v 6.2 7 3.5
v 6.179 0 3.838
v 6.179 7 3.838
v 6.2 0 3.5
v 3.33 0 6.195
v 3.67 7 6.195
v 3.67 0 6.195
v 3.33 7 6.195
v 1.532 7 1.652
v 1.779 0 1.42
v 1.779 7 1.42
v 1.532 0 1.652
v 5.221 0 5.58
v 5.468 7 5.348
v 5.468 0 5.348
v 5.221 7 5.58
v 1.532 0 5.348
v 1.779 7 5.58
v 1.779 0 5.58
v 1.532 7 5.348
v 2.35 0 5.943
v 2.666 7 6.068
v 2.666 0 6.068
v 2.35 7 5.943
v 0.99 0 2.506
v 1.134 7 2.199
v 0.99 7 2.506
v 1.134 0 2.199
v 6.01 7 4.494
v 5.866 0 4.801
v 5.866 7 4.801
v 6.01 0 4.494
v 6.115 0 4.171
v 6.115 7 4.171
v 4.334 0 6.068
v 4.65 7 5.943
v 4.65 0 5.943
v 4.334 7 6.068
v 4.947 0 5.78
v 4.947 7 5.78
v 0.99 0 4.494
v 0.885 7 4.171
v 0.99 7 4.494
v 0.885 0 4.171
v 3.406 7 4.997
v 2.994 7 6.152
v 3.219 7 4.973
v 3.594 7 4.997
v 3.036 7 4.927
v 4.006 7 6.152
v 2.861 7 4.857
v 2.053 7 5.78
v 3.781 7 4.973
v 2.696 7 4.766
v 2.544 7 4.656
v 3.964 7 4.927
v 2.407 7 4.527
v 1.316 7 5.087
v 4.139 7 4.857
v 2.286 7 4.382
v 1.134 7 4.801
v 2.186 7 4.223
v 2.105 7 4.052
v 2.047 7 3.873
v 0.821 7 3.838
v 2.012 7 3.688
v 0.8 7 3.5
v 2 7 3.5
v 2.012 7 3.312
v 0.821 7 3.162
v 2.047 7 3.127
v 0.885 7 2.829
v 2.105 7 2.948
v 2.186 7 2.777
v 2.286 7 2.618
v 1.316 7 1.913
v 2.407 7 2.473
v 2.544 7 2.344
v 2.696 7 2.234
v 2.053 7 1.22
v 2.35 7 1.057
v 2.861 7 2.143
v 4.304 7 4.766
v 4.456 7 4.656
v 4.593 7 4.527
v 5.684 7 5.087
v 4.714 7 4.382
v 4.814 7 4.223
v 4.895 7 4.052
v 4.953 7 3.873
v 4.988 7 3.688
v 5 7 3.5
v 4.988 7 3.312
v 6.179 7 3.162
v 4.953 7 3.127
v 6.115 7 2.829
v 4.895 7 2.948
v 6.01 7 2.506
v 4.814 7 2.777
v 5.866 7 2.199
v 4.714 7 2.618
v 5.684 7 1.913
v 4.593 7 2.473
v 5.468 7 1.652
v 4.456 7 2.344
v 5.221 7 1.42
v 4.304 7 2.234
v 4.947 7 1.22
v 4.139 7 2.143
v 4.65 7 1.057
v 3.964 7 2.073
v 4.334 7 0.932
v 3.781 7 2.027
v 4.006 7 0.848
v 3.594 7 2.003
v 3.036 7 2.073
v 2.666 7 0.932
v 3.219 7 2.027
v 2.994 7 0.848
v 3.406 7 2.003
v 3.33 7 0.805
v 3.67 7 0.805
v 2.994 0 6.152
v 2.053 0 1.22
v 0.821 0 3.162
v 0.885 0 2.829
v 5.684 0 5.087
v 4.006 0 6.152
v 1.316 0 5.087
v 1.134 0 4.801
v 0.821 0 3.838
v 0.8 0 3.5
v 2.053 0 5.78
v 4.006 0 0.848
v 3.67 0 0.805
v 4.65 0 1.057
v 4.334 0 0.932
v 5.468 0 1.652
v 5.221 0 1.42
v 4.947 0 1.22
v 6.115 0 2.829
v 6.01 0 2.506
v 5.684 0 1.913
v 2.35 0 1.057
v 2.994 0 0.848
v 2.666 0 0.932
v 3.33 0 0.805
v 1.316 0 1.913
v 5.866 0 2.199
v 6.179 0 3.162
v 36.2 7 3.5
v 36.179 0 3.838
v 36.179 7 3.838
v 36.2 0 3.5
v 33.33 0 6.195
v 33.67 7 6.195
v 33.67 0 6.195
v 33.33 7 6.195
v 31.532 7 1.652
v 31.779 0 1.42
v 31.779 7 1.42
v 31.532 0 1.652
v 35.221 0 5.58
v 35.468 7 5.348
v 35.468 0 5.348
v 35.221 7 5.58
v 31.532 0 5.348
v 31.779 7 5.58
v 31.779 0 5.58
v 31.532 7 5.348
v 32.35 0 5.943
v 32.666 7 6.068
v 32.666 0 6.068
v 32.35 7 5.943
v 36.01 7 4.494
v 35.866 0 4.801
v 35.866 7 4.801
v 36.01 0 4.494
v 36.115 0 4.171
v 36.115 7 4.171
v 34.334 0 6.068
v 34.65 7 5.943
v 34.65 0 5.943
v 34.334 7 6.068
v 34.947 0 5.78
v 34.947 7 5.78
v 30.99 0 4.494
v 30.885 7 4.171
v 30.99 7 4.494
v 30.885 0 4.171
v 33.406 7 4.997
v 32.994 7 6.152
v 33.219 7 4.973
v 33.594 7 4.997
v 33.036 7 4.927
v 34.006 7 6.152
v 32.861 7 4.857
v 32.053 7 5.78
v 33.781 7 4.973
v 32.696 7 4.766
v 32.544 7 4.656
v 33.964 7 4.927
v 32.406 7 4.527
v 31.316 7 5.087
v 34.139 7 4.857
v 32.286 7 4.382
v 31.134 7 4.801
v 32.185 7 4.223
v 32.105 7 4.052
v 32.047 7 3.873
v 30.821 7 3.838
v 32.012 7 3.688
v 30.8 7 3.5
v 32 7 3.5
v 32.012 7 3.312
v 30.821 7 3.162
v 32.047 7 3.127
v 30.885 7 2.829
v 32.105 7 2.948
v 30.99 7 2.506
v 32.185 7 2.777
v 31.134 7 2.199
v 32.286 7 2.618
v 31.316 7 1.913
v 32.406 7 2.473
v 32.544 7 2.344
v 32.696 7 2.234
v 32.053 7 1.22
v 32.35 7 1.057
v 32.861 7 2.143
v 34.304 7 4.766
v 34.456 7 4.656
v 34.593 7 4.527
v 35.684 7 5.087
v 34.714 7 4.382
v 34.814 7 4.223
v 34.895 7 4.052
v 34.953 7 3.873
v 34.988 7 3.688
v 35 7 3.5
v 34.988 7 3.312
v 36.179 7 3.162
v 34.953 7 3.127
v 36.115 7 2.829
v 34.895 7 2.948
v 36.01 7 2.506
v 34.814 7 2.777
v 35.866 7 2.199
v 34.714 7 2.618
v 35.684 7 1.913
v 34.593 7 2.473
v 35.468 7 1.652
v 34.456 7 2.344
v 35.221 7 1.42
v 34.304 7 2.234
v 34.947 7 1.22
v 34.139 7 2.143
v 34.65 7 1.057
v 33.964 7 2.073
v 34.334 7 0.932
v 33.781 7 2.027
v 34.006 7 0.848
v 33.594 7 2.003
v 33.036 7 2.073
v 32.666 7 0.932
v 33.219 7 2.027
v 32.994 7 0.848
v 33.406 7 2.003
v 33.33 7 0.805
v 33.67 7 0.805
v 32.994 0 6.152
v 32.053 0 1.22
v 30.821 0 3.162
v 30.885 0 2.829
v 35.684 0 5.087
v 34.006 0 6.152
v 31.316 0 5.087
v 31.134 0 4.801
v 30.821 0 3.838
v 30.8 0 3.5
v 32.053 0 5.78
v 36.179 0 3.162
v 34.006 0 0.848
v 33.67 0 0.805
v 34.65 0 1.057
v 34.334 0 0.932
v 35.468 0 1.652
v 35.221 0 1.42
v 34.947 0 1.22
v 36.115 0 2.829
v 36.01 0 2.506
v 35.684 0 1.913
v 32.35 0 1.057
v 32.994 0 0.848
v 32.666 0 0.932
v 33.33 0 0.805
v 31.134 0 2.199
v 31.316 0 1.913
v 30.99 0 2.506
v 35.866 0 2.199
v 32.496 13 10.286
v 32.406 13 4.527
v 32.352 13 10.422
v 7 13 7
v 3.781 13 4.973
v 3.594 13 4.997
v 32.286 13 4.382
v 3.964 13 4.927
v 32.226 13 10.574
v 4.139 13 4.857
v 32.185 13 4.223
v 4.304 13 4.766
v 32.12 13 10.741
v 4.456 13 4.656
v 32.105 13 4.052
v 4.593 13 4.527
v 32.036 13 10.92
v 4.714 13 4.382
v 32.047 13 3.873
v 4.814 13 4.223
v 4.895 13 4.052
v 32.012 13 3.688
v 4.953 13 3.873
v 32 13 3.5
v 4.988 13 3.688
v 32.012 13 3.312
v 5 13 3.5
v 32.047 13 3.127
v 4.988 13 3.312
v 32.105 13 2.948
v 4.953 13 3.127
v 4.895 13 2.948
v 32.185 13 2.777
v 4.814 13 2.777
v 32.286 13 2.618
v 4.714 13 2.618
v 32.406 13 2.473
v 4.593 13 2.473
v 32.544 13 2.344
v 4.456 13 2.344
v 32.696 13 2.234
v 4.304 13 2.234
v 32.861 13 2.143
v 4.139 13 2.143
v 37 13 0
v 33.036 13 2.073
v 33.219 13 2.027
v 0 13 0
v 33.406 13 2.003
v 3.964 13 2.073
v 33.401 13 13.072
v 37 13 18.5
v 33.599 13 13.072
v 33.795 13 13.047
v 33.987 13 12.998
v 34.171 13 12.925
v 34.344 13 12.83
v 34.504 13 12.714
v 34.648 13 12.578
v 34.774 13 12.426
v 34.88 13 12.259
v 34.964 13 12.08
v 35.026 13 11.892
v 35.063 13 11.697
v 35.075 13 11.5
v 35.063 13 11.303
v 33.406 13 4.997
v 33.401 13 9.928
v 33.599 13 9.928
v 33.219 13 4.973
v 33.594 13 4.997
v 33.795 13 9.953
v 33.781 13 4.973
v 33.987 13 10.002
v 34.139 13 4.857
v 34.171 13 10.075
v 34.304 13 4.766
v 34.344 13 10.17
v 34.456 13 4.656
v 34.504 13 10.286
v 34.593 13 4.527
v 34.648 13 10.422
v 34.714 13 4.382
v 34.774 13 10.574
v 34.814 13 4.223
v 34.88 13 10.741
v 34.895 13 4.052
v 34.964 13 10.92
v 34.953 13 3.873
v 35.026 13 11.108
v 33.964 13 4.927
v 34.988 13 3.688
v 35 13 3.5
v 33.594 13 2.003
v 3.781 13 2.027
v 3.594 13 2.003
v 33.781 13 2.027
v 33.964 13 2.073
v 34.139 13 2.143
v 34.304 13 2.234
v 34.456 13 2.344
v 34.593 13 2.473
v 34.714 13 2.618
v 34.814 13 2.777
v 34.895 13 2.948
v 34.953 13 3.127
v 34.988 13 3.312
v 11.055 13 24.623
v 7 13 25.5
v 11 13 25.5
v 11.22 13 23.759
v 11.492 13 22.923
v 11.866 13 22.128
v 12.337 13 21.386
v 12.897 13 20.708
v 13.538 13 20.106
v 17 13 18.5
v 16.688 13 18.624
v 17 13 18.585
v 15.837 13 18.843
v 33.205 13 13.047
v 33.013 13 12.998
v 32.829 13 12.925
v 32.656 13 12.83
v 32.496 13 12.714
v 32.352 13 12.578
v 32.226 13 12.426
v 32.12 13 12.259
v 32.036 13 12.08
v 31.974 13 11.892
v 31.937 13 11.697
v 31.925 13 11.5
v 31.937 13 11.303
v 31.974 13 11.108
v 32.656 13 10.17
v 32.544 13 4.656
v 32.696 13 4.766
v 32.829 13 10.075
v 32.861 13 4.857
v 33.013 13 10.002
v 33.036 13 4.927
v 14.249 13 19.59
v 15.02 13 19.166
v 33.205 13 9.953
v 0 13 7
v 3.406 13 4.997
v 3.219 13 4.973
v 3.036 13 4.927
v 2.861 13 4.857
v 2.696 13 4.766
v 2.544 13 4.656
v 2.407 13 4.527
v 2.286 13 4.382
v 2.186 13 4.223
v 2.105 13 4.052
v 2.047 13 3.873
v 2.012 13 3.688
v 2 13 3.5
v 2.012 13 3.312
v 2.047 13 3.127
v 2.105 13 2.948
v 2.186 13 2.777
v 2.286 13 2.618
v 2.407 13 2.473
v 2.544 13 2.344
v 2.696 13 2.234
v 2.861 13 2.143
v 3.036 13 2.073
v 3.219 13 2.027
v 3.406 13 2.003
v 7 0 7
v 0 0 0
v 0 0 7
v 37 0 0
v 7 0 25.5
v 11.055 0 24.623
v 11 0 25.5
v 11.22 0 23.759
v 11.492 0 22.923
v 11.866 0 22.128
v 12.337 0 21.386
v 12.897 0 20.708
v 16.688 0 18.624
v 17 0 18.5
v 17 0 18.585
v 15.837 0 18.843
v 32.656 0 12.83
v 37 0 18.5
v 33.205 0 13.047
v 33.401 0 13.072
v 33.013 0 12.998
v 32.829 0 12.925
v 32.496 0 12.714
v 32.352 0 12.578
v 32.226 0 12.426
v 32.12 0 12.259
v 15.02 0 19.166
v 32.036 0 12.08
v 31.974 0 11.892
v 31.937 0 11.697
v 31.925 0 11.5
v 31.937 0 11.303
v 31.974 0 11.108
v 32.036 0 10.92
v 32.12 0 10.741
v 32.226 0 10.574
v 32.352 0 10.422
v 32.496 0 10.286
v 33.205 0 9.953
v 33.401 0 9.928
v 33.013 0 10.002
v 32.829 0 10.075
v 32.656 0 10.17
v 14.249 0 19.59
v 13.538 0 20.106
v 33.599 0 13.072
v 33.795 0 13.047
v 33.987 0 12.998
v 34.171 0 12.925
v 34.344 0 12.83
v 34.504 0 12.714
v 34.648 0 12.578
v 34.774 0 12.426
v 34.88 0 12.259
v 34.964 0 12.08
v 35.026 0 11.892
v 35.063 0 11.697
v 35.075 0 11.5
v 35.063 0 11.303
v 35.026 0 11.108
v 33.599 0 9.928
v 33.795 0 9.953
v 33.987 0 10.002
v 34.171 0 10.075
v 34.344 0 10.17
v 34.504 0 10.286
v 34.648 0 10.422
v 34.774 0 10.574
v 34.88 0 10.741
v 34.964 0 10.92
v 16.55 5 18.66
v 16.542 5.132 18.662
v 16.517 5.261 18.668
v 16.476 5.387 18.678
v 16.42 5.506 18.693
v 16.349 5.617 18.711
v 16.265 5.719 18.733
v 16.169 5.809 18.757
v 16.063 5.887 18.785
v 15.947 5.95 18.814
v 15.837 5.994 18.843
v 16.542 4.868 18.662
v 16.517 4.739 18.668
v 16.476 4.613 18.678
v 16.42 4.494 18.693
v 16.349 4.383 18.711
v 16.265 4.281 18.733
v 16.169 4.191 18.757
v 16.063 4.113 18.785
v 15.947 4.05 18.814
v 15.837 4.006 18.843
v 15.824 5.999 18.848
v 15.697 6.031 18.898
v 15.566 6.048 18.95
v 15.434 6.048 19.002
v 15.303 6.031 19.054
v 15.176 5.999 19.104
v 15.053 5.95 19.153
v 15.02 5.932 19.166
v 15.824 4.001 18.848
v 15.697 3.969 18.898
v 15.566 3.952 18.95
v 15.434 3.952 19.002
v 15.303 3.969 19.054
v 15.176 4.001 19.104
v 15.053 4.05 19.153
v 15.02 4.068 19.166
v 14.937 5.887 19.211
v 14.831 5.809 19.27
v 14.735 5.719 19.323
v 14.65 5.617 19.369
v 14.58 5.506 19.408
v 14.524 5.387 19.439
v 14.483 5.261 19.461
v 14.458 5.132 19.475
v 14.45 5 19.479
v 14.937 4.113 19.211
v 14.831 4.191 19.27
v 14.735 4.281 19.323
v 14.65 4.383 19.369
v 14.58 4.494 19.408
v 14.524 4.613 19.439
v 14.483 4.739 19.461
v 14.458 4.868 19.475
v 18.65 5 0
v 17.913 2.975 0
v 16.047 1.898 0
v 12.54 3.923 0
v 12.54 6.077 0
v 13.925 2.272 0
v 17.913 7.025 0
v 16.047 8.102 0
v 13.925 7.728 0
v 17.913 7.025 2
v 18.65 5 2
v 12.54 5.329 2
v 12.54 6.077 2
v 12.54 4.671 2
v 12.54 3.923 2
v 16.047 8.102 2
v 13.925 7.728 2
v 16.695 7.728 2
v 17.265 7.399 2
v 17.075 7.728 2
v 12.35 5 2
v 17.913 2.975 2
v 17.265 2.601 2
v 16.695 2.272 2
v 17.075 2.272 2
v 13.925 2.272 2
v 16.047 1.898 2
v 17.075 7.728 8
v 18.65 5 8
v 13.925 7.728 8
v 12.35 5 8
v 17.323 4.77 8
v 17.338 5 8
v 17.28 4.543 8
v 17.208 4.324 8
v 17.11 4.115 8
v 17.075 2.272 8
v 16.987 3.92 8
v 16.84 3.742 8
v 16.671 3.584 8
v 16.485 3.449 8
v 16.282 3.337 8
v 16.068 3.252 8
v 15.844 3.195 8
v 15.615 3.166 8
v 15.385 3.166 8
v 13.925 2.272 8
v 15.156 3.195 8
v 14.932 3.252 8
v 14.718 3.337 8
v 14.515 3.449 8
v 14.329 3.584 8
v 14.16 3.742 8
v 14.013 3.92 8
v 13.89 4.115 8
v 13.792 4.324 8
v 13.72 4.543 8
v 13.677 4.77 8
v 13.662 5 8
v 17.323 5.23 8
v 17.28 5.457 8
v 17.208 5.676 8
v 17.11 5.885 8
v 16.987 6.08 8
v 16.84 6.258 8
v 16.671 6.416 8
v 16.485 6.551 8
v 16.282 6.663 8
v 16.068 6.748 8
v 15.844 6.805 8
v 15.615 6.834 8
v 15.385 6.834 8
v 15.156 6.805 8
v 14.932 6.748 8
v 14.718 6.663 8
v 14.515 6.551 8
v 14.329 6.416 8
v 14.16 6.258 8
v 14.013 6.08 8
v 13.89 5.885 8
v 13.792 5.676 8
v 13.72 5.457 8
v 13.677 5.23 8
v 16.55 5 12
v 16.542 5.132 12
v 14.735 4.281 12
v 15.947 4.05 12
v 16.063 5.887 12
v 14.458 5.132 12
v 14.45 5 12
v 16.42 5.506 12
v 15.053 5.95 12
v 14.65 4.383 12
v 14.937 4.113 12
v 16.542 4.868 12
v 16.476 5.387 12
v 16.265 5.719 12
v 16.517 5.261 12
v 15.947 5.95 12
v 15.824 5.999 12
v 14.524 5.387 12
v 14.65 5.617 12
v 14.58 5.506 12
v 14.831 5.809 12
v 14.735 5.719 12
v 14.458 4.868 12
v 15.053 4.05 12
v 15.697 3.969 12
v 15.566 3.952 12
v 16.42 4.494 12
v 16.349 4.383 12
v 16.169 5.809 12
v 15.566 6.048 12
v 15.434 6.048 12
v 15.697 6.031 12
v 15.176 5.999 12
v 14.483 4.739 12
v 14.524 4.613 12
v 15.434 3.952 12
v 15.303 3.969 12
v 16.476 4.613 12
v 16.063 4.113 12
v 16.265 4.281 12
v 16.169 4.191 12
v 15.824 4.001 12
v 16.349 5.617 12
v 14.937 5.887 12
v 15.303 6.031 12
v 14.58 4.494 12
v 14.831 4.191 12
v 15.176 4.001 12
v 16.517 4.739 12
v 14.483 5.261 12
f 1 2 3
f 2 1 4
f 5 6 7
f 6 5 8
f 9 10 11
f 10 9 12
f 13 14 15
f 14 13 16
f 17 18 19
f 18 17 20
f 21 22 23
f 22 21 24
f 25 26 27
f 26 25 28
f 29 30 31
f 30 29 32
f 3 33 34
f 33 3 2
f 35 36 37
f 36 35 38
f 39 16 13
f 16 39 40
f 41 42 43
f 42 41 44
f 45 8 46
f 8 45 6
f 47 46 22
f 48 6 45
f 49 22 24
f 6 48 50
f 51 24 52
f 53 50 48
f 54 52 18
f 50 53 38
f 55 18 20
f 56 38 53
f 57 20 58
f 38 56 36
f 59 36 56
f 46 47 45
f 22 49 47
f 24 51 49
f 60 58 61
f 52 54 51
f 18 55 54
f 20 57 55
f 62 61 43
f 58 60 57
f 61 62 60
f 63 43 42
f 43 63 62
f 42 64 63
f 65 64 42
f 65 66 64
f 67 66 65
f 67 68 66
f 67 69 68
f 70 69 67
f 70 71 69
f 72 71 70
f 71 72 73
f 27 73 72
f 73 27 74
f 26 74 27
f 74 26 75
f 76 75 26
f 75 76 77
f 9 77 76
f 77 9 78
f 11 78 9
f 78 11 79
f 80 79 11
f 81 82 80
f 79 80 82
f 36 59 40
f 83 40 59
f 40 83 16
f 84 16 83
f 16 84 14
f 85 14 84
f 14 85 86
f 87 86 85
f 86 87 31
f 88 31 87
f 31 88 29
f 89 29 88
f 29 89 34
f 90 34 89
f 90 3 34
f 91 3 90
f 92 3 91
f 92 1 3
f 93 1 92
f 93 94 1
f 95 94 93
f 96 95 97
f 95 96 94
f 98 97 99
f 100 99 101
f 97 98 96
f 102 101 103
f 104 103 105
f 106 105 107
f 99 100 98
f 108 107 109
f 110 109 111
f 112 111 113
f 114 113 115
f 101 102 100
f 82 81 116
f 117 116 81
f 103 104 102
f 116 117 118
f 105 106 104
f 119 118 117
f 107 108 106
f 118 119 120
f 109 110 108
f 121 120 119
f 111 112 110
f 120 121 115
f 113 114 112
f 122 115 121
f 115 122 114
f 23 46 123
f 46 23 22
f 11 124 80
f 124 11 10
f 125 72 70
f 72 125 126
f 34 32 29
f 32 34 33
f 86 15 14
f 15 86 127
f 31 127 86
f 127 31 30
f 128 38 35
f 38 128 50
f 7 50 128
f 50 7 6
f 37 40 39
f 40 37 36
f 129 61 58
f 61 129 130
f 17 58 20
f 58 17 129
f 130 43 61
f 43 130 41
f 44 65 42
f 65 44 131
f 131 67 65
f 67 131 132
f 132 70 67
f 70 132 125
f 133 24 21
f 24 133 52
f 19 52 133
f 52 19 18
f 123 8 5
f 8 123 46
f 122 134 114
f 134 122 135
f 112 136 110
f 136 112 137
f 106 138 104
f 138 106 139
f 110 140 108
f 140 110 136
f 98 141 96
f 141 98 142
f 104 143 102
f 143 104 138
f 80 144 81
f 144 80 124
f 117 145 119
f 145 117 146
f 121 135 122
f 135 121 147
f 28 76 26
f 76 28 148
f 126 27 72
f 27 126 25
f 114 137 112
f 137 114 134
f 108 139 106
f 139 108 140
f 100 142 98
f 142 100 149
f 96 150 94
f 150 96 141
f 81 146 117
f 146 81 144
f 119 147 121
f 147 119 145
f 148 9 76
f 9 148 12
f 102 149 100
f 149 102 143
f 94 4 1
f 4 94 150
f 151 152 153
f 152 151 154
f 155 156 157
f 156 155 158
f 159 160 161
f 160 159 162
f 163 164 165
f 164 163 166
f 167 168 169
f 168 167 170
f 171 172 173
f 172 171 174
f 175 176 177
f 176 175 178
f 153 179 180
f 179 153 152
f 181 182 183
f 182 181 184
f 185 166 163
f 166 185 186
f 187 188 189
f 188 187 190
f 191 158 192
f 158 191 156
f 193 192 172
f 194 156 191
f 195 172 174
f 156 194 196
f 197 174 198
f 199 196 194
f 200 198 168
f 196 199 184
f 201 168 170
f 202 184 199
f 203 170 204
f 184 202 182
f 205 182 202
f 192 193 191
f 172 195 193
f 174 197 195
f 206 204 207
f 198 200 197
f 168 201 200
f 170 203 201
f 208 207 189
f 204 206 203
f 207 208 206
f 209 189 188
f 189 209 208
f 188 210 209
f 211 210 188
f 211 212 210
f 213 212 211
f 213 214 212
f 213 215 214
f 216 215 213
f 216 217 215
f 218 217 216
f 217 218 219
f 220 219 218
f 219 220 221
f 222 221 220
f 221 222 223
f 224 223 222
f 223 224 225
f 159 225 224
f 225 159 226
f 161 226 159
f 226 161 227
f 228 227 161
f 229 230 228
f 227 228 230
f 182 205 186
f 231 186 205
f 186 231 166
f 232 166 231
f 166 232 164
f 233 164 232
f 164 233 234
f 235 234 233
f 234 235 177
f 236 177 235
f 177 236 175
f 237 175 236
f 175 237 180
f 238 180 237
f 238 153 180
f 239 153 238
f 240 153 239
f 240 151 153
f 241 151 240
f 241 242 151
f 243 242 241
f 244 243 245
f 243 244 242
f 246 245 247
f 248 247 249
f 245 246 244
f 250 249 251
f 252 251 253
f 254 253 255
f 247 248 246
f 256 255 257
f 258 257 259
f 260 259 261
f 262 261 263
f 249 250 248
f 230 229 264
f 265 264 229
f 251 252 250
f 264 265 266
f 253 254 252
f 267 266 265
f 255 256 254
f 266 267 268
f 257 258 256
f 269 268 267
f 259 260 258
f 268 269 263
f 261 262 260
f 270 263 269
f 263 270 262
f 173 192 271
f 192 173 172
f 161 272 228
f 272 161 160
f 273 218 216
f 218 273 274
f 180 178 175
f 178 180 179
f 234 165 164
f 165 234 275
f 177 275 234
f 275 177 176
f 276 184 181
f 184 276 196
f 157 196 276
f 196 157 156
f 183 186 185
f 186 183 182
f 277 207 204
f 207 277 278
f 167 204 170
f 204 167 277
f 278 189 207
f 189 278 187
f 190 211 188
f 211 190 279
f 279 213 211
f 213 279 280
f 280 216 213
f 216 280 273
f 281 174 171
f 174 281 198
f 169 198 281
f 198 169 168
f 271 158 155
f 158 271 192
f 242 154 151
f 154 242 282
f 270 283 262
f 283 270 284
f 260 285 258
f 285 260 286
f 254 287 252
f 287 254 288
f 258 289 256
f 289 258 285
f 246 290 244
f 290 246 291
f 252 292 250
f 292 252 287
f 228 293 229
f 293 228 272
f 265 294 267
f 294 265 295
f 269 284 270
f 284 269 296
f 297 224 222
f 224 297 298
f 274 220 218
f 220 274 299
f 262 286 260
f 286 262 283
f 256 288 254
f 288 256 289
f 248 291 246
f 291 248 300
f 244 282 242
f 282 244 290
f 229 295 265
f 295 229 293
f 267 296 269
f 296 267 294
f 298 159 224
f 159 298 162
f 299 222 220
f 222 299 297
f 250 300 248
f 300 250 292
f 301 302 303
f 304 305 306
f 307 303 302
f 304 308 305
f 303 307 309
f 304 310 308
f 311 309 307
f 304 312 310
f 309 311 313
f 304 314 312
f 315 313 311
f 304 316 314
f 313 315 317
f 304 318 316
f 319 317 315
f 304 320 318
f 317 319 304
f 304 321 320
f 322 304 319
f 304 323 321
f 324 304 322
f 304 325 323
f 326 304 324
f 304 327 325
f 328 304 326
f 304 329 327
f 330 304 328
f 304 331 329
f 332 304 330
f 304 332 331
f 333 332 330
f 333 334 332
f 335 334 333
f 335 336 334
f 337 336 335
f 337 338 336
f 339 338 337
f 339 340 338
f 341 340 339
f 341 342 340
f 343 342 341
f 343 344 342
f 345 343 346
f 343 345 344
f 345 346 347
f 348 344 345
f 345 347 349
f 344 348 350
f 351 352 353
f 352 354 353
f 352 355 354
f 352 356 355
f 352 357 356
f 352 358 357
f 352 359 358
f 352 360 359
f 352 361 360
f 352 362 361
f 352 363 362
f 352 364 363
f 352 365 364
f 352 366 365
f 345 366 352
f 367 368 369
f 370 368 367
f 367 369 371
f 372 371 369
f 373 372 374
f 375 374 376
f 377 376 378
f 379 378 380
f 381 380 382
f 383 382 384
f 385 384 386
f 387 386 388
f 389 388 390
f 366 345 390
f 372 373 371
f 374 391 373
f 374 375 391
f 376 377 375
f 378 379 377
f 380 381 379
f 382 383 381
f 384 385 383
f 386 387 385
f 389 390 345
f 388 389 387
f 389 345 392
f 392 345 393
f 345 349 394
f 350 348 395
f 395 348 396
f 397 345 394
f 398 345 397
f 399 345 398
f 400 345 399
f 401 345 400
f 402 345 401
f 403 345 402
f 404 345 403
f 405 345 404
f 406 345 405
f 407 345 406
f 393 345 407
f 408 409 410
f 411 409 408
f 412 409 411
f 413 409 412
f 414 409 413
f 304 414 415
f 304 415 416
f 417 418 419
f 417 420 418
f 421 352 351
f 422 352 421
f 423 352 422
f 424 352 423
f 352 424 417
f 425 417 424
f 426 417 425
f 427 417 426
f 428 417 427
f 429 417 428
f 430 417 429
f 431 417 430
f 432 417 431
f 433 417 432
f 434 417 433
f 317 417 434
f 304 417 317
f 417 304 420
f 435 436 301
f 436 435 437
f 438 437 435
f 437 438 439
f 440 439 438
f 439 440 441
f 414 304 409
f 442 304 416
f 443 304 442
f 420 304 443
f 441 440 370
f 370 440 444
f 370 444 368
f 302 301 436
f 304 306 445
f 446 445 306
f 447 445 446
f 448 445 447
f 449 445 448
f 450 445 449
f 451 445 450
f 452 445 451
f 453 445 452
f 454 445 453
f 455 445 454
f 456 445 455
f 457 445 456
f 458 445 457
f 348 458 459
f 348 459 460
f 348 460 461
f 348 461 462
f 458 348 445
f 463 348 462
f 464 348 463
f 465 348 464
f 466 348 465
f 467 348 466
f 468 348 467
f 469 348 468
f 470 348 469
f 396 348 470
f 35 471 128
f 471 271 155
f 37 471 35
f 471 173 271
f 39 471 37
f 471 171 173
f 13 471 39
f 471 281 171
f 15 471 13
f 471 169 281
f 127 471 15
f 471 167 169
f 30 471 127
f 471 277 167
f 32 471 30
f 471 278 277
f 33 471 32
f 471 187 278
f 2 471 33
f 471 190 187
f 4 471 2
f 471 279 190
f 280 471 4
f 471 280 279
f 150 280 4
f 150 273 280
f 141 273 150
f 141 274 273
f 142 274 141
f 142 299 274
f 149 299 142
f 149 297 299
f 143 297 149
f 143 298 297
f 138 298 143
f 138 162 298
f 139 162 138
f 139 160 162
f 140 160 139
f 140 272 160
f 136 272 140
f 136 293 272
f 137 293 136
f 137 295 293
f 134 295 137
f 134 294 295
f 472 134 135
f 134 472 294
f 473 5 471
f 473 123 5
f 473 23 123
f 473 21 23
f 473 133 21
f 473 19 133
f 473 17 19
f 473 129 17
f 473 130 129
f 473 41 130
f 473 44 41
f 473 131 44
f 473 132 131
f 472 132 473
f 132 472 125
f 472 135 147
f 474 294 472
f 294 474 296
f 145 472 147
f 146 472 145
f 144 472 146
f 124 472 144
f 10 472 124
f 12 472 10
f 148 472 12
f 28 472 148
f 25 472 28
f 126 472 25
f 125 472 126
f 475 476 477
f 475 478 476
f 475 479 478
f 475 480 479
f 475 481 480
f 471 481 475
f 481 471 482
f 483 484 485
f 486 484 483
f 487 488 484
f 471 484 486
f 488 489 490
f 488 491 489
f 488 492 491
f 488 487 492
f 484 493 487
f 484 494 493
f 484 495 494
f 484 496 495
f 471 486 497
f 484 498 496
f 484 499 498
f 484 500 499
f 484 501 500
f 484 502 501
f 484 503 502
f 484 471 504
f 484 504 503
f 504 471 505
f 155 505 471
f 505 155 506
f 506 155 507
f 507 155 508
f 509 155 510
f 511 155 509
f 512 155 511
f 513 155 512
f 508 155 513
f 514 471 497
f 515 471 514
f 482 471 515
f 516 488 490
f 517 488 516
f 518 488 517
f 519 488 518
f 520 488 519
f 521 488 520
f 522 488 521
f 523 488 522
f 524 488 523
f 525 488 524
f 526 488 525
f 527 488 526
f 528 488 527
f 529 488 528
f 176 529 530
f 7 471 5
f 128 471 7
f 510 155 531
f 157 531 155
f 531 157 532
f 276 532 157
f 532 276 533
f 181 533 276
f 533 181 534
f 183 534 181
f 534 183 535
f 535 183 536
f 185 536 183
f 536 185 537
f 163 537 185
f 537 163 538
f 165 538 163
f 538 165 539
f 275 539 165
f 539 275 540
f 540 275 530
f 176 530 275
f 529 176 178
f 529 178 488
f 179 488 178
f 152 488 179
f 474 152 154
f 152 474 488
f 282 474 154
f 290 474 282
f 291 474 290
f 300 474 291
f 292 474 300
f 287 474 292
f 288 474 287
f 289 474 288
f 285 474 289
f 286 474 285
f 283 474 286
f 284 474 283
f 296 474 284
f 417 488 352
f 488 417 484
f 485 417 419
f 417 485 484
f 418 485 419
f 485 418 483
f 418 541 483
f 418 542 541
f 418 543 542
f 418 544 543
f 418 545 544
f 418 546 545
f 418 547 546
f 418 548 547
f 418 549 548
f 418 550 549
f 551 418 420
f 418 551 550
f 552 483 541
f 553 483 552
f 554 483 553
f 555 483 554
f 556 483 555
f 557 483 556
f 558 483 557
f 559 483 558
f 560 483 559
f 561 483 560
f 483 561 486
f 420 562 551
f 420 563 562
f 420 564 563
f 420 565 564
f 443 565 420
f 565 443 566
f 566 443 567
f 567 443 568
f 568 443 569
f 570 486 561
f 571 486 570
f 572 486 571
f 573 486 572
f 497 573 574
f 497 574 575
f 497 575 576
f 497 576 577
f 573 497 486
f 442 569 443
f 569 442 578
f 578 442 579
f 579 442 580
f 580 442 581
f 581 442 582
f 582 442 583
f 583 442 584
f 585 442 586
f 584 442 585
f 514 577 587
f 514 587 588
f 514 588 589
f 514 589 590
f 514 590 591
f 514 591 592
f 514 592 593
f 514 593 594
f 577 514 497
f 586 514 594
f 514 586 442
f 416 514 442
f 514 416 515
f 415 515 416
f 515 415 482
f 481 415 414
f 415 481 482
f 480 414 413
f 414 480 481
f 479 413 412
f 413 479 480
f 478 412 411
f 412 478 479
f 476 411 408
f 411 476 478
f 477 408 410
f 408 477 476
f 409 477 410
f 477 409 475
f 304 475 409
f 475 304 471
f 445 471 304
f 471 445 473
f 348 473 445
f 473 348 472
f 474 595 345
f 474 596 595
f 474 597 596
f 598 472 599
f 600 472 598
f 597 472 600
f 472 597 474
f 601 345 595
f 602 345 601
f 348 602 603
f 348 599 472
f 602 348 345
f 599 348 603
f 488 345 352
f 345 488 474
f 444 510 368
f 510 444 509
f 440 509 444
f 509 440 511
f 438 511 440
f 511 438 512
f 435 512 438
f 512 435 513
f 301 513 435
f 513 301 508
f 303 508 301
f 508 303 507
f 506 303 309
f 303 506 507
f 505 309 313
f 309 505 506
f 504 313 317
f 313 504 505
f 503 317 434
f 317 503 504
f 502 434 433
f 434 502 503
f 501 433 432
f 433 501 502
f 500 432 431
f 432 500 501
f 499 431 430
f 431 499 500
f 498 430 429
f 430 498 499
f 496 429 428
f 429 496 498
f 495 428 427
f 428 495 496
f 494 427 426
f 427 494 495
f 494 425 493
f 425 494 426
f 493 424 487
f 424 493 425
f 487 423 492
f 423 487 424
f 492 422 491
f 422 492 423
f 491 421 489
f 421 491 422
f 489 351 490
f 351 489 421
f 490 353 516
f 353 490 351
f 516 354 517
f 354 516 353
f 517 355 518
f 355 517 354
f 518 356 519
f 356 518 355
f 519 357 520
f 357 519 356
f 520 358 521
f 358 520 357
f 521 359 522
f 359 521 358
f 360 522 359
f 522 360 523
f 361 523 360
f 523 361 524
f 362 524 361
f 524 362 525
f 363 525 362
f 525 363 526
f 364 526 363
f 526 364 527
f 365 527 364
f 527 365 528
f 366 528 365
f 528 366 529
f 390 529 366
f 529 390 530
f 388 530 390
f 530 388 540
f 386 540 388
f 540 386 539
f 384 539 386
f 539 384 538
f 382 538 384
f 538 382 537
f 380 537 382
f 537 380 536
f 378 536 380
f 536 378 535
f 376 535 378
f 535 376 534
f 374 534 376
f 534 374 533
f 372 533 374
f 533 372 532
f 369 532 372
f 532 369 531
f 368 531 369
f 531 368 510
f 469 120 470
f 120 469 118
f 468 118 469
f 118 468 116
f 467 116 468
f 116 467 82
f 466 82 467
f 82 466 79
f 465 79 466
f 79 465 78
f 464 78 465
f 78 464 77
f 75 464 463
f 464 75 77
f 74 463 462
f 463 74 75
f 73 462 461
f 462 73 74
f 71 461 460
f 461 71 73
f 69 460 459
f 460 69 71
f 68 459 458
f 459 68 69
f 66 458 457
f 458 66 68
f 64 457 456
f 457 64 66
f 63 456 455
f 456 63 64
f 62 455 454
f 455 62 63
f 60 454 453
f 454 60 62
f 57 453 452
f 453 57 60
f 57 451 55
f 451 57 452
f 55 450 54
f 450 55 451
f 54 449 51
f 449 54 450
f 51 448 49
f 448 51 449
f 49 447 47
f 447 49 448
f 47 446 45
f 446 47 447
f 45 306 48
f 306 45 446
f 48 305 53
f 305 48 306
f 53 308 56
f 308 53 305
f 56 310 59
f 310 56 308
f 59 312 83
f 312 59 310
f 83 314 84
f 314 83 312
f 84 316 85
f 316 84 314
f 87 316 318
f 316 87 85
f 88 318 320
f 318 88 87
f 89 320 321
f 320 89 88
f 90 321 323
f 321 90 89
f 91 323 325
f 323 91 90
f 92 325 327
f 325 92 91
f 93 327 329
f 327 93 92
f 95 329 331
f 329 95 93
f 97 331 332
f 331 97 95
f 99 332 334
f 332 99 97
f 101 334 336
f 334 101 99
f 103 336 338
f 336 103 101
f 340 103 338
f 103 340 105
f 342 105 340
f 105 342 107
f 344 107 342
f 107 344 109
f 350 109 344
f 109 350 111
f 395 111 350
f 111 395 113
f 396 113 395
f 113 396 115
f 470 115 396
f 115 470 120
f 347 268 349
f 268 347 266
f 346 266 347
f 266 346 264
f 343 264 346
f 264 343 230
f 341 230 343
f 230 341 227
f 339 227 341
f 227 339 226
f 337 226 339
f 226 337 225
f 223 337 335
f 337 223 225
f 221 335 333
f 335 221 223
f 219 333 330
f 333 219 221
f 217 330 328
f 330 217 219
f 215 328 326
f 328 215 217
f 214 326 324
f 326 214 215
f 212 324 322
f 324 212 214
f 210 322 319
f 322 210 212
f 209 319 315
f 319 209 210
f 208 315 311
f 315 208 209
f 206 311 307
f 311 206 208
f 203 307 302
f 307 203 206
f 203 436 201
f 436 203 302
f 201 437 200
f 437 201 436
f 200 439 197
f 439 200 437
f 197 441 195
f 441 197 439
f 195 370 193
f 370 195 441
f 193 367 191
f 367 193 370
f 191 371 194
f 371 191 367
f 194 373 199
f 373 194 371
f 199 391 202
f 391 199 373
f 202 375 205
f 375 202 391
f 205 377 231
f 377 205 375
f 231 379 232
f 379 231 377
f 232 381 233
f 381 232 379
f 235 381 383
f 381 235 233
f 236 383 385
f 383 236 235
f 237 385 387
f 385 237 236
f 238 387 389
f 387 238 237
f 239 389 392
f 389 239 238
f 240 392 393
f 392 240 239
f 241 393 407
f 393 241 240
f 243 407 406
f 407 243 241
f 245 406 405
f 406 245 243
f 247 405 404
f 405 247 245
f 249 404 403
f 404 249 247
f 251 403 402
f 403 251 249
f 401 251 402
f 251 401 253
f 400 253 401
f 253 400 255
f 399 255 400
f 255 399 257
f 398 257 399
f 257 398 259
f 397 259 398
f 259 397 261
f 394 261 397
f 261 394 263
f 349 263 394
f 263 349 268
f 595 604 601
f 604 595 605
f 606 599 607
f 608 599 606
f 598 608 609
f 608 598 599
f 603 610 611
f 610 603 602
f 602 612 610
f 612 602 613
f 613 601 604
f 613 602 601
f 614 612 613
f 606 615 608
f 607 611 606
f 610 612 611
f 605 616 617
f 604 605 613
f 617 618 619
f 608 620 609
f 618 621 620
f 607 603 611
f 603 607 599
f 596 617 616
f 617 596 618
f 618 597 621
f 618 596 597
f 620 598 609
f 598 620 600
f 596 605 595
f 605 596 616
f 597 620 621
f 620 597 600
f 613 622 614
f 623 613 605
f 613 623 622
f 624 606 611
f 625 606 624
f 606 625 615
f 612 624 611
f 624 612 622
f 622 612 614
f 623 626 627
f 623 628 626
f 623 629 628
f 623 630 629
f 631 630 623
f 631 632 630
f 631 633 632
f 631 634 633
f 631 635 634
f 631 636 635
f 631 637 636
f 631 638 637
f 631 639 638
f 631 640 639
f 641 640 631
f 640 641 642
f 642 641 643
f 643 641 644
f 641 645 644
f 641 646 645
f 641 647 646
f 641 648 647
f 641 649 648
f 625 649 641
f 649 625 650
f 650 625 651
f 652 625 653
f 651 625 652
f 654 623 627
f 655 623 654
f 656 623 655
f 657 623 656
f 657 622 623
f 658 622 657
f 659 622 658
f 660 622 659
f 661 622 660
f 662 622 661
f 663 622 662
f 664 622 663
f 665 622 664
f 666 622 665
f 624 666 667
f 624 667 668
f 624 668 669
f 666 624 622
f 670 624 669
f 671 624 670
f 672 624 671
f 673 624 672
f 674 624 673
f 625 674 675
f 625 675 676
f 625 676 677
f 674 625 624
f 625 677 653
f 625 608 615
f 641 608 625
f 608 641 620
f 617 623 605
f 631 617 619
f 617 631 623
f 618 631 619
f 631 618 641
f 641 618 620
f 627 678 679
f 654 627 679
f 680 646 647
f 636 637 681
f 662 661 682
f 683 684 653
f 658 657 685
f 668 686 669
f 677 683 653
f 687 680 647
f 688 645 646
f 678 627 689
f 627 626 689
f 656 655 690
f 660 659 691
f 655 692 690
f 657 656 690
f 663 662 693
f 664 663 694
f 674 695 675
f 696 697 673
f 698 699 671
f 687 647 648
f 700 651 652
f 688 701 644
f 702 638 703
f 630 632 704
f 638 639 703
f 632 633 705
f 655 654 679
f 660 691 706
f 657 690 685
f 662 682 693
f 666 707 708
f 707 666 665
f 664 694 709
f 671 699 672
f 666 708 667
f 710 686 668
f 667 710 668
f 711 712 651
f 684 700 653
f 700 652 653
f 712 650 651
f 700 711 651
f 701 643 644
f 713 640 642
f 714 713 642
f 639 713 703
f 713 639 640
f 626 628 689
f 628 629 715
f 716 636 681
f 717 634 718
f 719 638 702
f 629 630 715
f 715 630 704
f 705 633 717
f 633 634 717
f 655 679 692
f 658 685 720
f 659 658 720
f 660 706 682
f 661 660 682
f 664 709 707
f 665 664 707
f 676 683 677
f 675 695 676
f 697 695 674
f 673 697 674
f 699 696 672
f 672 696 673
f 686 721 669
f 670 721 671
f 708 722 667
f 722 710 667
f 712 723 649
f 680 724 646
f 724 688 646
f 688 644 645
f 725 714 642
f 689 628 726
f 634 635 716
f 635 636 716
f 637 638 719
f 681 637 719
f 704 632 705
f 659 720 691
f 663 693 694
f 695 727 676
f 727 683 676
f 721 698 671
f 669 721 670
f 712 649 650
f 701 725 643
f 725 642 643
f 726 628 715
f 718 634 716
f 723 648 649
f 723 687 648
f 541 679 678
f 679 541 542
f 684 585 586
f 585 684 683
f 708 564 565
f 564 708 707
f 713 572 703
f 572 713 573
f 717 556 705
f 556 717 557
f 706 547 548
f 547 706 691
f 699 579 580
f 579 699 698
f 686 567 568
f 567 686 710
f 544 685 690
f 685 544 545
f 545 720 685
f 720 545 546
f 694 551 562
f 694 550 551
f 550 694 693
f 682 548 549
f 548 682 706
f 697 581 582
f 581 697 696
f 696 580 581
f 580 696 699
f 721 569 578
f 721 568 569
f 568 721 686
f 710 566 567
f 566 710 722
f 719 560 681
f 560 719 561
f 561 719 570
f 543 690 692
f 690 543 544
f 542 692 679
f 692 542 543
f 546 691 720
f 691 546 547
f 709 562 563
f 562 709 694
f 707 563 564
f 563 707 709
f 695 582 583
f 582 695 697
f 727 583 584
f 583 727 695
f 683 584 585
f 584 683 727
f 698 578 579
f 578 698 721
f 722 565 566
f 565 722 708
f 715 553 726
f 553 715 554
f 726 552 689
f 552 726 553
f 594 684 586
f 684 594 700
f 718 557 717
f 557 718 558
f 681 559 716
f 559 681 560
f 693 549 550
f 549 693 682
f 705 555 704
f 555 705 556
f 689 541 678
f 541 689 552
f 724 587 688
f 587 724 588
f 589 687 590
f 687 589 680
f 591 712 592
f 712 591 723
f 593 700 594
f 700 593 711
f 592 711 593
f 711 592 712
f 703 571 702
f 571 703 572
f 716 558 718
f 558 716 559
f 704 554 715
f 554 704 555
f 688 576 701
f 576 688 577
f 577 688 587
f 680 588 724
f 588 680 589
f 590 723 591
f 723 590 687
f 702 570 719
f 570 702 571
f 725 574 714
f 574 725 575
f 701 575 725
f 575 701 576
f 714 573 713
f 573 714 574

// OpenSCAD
$fn=50;
holeTolerance=1.05;
module side_flat() {
    difference() {
        square([37,34]);
        for(i=[3.5,37-3.5])translate([i,3.5])circle(r=3/2);
        translate([37-3.5,11.5])circle(r=1.5*holeTolerance);
        translate([0,7])square([7,50]);
        translate([18,25.5])circle(r=7);
        translate([5,25.5])square([37,34]);
        translate([17,18.5])square([37,34]);
    }
}
module side_ext() {
    difference() {
        translate([0,13])rotate(a=[90,0,0])difference() {
            linear_extrude(height=13)side_flat();
            for(i=[3.5,37-3.5])translate([i,3.5,6])cylinder(r=5.4/2,h=16);
        }
        translate([37-21.5,13-8])pipe();
    }
}
module pipe() {
    cylinder(r=3*holeTolerance,$fn=9,h=2);
    translate([0,0,2])cylinder(r=3*holeTolerance,$fn=6,h=6);
    translate([0,0,8])cylinder(r2=1*holeTolerance,r1=1.75*holeTolerance,h=4);
    translate([0,0,11])cylinder(r=1*holeTolerance,h=14);
}
side_ext();
